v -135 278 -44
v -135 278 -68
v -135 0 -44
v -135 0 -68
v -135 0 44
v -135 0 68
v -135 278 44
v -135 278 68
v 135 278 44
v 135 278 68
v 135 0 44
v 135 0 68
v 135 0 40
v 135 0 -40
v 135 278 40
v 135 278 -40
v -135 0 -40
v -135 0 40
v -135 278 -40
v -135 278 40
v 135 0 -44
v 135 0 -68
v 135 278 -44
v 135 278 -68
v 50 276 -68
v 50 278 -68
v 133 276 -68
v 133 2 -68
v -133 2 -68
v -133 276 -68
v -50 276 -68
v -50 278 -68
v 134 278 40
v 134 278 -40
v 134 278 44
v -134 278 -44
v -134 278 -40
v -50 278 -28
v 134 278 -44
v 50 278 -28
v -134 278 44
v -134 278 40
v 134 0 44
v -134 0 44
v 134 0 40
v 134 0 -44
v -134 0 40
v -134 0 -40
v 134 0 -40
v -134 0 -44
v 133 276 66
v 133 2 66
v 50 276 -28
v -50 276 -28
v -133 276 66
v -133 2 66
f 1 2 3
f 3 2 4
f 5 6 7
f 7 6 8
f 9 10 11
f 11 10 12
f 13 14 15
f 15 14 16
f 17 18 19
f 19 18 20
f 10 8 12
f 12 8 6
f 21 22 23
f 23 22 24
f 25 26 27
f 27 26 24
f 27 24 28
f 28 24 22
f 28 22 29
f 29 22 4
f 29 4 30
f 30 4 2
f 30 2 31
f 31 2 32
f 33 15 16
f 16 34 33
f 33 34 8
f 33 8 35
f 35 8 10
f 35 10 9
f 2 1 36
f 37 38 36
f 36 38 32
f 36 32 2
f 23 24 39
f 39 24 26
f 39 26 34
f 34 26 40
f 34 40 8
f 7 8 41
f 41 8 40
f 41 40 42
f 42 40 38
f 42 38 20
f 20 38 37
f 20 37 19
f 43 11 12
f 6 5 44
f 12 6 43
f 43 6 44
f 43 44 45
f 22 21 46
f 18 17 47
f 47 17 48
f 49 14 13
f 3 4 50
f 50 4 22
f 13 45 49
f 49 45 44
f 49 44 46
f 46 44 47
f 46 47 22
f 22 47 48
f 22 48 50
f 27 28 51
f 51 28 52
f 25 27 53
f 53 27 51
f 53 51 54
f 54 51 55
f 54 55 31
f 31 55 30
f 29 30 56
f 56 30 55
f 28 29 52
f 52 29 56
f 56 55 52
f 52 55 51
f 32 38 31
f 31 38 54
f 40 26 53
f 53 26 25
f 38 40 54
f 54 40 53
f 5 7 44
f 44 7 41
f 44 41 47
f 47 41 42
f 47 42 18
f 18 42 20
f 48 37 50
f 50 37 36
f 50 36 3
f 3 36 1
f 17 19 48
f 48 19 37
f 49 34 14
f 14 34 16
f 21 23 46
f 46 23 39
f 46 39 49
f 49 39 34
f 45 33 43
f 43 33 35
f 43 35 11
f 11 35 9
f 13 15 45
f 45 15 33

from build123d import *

# Parameters (mm, degrees)
SKETCH_1_W          = 270
SKETCH_1_H          = 136
EXTRUDE_1_DEPTH     = 278
SKETCH_2_W          = 266
SKETCH_2_H          = 274
CUT_EXTRUDE_1_DEPTH = 134
CUT_EXTRUDE_2_REACH = 318.438
SKETCH_3_W          = 100
SKETCH_3_H          = 40
CUT_EXTRUDE_3_REACH = 318.438
SKETCH_4_W          = 1
SKETCH_4_H          = 4


with BuildPart() as part:
    # 草图1 → 凸台-拉伸1 (new body)
    with BuildSketch(Plane(origin=(0, 0, 0), x_dir=(1, 0, 0), z_dir=(0, 1, 0))):
        Rectangle(SKETCH_1_W, SKETCH_1_H)
    extrude(amount=EXTRUDE_1_DEPTH)

    # 草图2 → 切除-拉伸1 (cut)
    with BuildSketch(Plane(origin=(0, 0, -68), x_dir=(-1, 0, 0), z_dir=(0, 0, -1))):
        with Locations((0, 139)):
            Rectangle(SKETCH_2_W, SKETCH_2_H)
    extrude(amount=-CUT_EXTRUDE_1_DEPTH, mode=Mode.SUBTRACT)

    # 草图3 → 切除-拉伸2 (cut, up to next)
    with BuildSketch(Plane(origin=(0, 278, 0), x_dir=(1, 0, 0), z_dir=(0, 1, 0)), mode=Mode.PRIVATE) as cut_extrude_2_sk1:
        with Locations((0, 48)):
            Rectangle(SKETCH_3_W, SKETCH_3_H)
    cut_extrude_2_tool1 = extrude(cut_extrude_2_sk1.sketch, amount=-CUT_EXTRUDE_2_REACH, mode=Mode.PRIVATE) & part.part
    add(cut_extrude_2_tool1.solids().sort_by_distance((0, 278, -48))[0], mode=Mode.SUBTRACT)

    # 草图4 → 切除-拉伸3 (cut, up to next)
    with BuildSketch(Plane.XZ, mode=Mode.PRIVATE) as cut_extrude_3_sk1:
        with Locations((-134.5, 42)):
            Rectangle(SKETCH_4_W, SKETCH_4_H)
    cut_extrude_3_tool1 = extrude(cut_extrude_3_sk1.sketch, amount=-CUT_EXTRUDE_3_REACH, mode=Mode.PRIVATE) & part.part
    # 草图4 → 切除-拉伸3 (cut, up to next)
    with BuildSketch(Plane.XZ, mode=Mode.PRIVATE) as cut_extrude_3_sk2:
        with Locations((-134.5, -42)):
            Rectangle(SKETCH_4_W, SKETCH_4_H)
    cut_extrude_3_tool2 = extrude(cut_extrude_3_sk2.sketch, amount=-CUT_EXTRUDE_3_REACH, mode=Mode.PRIVATE) & part.part
    # 草图4 → 切除-拉伸3 (cut, up to next)
    with BuildSketch(Plane.XZ, mode=Mode.PRIVATE) as cut_extrude_3_sk3:
        with Locations((134.5, -42)):
            Rectangle(SKETCH_4_W, SKETCH_4_H)
    cut_extrude_3_tool3 = extrude(cut_extrude_3_sk3.sketch, amount=-CUT_EXTRUDE_3_REACH, mode=Mode.PRIVATE) & part.part
    # 草图4 → 切除-拉伸3 (cut, up to next)
    with BuildSketch(Plane.XZ, mode=Mode.PRIVATE) as cut_extrude_3_sk4:
        with Locations((134.5, 42)):
            Rectangle(SKETCH_4_W, SKETCH_4_H)
    cut_extrude_3_tool4 = extrude(cut_extrude_3_sk4.sketch, amount=-CUT_EXTRUDE_3_REACH, mode=Mode.PRIVATE) & part.part
    add(cut_extrude_3_tool1.solids().sort_by_distance((-134.5, 0, 42))[0], mode=Mode.SUBTRACT)
    add(cut_extrude_3_tool2.solids().sort_by_distance((-134.5, 0, -42))[0], mode=Mode.SUBTRACT)
    add(cut_extrude_3_tool3.solids().sort_by_distance((134.5, 0, -42))[0], mode=Mode.SUBTRACT)
    add(cut_extrude_3_tool4.solids().sort_by_distance((134.5, 0, 42))[0], mode=Mode.SUBTRACT)


solid = part.part
